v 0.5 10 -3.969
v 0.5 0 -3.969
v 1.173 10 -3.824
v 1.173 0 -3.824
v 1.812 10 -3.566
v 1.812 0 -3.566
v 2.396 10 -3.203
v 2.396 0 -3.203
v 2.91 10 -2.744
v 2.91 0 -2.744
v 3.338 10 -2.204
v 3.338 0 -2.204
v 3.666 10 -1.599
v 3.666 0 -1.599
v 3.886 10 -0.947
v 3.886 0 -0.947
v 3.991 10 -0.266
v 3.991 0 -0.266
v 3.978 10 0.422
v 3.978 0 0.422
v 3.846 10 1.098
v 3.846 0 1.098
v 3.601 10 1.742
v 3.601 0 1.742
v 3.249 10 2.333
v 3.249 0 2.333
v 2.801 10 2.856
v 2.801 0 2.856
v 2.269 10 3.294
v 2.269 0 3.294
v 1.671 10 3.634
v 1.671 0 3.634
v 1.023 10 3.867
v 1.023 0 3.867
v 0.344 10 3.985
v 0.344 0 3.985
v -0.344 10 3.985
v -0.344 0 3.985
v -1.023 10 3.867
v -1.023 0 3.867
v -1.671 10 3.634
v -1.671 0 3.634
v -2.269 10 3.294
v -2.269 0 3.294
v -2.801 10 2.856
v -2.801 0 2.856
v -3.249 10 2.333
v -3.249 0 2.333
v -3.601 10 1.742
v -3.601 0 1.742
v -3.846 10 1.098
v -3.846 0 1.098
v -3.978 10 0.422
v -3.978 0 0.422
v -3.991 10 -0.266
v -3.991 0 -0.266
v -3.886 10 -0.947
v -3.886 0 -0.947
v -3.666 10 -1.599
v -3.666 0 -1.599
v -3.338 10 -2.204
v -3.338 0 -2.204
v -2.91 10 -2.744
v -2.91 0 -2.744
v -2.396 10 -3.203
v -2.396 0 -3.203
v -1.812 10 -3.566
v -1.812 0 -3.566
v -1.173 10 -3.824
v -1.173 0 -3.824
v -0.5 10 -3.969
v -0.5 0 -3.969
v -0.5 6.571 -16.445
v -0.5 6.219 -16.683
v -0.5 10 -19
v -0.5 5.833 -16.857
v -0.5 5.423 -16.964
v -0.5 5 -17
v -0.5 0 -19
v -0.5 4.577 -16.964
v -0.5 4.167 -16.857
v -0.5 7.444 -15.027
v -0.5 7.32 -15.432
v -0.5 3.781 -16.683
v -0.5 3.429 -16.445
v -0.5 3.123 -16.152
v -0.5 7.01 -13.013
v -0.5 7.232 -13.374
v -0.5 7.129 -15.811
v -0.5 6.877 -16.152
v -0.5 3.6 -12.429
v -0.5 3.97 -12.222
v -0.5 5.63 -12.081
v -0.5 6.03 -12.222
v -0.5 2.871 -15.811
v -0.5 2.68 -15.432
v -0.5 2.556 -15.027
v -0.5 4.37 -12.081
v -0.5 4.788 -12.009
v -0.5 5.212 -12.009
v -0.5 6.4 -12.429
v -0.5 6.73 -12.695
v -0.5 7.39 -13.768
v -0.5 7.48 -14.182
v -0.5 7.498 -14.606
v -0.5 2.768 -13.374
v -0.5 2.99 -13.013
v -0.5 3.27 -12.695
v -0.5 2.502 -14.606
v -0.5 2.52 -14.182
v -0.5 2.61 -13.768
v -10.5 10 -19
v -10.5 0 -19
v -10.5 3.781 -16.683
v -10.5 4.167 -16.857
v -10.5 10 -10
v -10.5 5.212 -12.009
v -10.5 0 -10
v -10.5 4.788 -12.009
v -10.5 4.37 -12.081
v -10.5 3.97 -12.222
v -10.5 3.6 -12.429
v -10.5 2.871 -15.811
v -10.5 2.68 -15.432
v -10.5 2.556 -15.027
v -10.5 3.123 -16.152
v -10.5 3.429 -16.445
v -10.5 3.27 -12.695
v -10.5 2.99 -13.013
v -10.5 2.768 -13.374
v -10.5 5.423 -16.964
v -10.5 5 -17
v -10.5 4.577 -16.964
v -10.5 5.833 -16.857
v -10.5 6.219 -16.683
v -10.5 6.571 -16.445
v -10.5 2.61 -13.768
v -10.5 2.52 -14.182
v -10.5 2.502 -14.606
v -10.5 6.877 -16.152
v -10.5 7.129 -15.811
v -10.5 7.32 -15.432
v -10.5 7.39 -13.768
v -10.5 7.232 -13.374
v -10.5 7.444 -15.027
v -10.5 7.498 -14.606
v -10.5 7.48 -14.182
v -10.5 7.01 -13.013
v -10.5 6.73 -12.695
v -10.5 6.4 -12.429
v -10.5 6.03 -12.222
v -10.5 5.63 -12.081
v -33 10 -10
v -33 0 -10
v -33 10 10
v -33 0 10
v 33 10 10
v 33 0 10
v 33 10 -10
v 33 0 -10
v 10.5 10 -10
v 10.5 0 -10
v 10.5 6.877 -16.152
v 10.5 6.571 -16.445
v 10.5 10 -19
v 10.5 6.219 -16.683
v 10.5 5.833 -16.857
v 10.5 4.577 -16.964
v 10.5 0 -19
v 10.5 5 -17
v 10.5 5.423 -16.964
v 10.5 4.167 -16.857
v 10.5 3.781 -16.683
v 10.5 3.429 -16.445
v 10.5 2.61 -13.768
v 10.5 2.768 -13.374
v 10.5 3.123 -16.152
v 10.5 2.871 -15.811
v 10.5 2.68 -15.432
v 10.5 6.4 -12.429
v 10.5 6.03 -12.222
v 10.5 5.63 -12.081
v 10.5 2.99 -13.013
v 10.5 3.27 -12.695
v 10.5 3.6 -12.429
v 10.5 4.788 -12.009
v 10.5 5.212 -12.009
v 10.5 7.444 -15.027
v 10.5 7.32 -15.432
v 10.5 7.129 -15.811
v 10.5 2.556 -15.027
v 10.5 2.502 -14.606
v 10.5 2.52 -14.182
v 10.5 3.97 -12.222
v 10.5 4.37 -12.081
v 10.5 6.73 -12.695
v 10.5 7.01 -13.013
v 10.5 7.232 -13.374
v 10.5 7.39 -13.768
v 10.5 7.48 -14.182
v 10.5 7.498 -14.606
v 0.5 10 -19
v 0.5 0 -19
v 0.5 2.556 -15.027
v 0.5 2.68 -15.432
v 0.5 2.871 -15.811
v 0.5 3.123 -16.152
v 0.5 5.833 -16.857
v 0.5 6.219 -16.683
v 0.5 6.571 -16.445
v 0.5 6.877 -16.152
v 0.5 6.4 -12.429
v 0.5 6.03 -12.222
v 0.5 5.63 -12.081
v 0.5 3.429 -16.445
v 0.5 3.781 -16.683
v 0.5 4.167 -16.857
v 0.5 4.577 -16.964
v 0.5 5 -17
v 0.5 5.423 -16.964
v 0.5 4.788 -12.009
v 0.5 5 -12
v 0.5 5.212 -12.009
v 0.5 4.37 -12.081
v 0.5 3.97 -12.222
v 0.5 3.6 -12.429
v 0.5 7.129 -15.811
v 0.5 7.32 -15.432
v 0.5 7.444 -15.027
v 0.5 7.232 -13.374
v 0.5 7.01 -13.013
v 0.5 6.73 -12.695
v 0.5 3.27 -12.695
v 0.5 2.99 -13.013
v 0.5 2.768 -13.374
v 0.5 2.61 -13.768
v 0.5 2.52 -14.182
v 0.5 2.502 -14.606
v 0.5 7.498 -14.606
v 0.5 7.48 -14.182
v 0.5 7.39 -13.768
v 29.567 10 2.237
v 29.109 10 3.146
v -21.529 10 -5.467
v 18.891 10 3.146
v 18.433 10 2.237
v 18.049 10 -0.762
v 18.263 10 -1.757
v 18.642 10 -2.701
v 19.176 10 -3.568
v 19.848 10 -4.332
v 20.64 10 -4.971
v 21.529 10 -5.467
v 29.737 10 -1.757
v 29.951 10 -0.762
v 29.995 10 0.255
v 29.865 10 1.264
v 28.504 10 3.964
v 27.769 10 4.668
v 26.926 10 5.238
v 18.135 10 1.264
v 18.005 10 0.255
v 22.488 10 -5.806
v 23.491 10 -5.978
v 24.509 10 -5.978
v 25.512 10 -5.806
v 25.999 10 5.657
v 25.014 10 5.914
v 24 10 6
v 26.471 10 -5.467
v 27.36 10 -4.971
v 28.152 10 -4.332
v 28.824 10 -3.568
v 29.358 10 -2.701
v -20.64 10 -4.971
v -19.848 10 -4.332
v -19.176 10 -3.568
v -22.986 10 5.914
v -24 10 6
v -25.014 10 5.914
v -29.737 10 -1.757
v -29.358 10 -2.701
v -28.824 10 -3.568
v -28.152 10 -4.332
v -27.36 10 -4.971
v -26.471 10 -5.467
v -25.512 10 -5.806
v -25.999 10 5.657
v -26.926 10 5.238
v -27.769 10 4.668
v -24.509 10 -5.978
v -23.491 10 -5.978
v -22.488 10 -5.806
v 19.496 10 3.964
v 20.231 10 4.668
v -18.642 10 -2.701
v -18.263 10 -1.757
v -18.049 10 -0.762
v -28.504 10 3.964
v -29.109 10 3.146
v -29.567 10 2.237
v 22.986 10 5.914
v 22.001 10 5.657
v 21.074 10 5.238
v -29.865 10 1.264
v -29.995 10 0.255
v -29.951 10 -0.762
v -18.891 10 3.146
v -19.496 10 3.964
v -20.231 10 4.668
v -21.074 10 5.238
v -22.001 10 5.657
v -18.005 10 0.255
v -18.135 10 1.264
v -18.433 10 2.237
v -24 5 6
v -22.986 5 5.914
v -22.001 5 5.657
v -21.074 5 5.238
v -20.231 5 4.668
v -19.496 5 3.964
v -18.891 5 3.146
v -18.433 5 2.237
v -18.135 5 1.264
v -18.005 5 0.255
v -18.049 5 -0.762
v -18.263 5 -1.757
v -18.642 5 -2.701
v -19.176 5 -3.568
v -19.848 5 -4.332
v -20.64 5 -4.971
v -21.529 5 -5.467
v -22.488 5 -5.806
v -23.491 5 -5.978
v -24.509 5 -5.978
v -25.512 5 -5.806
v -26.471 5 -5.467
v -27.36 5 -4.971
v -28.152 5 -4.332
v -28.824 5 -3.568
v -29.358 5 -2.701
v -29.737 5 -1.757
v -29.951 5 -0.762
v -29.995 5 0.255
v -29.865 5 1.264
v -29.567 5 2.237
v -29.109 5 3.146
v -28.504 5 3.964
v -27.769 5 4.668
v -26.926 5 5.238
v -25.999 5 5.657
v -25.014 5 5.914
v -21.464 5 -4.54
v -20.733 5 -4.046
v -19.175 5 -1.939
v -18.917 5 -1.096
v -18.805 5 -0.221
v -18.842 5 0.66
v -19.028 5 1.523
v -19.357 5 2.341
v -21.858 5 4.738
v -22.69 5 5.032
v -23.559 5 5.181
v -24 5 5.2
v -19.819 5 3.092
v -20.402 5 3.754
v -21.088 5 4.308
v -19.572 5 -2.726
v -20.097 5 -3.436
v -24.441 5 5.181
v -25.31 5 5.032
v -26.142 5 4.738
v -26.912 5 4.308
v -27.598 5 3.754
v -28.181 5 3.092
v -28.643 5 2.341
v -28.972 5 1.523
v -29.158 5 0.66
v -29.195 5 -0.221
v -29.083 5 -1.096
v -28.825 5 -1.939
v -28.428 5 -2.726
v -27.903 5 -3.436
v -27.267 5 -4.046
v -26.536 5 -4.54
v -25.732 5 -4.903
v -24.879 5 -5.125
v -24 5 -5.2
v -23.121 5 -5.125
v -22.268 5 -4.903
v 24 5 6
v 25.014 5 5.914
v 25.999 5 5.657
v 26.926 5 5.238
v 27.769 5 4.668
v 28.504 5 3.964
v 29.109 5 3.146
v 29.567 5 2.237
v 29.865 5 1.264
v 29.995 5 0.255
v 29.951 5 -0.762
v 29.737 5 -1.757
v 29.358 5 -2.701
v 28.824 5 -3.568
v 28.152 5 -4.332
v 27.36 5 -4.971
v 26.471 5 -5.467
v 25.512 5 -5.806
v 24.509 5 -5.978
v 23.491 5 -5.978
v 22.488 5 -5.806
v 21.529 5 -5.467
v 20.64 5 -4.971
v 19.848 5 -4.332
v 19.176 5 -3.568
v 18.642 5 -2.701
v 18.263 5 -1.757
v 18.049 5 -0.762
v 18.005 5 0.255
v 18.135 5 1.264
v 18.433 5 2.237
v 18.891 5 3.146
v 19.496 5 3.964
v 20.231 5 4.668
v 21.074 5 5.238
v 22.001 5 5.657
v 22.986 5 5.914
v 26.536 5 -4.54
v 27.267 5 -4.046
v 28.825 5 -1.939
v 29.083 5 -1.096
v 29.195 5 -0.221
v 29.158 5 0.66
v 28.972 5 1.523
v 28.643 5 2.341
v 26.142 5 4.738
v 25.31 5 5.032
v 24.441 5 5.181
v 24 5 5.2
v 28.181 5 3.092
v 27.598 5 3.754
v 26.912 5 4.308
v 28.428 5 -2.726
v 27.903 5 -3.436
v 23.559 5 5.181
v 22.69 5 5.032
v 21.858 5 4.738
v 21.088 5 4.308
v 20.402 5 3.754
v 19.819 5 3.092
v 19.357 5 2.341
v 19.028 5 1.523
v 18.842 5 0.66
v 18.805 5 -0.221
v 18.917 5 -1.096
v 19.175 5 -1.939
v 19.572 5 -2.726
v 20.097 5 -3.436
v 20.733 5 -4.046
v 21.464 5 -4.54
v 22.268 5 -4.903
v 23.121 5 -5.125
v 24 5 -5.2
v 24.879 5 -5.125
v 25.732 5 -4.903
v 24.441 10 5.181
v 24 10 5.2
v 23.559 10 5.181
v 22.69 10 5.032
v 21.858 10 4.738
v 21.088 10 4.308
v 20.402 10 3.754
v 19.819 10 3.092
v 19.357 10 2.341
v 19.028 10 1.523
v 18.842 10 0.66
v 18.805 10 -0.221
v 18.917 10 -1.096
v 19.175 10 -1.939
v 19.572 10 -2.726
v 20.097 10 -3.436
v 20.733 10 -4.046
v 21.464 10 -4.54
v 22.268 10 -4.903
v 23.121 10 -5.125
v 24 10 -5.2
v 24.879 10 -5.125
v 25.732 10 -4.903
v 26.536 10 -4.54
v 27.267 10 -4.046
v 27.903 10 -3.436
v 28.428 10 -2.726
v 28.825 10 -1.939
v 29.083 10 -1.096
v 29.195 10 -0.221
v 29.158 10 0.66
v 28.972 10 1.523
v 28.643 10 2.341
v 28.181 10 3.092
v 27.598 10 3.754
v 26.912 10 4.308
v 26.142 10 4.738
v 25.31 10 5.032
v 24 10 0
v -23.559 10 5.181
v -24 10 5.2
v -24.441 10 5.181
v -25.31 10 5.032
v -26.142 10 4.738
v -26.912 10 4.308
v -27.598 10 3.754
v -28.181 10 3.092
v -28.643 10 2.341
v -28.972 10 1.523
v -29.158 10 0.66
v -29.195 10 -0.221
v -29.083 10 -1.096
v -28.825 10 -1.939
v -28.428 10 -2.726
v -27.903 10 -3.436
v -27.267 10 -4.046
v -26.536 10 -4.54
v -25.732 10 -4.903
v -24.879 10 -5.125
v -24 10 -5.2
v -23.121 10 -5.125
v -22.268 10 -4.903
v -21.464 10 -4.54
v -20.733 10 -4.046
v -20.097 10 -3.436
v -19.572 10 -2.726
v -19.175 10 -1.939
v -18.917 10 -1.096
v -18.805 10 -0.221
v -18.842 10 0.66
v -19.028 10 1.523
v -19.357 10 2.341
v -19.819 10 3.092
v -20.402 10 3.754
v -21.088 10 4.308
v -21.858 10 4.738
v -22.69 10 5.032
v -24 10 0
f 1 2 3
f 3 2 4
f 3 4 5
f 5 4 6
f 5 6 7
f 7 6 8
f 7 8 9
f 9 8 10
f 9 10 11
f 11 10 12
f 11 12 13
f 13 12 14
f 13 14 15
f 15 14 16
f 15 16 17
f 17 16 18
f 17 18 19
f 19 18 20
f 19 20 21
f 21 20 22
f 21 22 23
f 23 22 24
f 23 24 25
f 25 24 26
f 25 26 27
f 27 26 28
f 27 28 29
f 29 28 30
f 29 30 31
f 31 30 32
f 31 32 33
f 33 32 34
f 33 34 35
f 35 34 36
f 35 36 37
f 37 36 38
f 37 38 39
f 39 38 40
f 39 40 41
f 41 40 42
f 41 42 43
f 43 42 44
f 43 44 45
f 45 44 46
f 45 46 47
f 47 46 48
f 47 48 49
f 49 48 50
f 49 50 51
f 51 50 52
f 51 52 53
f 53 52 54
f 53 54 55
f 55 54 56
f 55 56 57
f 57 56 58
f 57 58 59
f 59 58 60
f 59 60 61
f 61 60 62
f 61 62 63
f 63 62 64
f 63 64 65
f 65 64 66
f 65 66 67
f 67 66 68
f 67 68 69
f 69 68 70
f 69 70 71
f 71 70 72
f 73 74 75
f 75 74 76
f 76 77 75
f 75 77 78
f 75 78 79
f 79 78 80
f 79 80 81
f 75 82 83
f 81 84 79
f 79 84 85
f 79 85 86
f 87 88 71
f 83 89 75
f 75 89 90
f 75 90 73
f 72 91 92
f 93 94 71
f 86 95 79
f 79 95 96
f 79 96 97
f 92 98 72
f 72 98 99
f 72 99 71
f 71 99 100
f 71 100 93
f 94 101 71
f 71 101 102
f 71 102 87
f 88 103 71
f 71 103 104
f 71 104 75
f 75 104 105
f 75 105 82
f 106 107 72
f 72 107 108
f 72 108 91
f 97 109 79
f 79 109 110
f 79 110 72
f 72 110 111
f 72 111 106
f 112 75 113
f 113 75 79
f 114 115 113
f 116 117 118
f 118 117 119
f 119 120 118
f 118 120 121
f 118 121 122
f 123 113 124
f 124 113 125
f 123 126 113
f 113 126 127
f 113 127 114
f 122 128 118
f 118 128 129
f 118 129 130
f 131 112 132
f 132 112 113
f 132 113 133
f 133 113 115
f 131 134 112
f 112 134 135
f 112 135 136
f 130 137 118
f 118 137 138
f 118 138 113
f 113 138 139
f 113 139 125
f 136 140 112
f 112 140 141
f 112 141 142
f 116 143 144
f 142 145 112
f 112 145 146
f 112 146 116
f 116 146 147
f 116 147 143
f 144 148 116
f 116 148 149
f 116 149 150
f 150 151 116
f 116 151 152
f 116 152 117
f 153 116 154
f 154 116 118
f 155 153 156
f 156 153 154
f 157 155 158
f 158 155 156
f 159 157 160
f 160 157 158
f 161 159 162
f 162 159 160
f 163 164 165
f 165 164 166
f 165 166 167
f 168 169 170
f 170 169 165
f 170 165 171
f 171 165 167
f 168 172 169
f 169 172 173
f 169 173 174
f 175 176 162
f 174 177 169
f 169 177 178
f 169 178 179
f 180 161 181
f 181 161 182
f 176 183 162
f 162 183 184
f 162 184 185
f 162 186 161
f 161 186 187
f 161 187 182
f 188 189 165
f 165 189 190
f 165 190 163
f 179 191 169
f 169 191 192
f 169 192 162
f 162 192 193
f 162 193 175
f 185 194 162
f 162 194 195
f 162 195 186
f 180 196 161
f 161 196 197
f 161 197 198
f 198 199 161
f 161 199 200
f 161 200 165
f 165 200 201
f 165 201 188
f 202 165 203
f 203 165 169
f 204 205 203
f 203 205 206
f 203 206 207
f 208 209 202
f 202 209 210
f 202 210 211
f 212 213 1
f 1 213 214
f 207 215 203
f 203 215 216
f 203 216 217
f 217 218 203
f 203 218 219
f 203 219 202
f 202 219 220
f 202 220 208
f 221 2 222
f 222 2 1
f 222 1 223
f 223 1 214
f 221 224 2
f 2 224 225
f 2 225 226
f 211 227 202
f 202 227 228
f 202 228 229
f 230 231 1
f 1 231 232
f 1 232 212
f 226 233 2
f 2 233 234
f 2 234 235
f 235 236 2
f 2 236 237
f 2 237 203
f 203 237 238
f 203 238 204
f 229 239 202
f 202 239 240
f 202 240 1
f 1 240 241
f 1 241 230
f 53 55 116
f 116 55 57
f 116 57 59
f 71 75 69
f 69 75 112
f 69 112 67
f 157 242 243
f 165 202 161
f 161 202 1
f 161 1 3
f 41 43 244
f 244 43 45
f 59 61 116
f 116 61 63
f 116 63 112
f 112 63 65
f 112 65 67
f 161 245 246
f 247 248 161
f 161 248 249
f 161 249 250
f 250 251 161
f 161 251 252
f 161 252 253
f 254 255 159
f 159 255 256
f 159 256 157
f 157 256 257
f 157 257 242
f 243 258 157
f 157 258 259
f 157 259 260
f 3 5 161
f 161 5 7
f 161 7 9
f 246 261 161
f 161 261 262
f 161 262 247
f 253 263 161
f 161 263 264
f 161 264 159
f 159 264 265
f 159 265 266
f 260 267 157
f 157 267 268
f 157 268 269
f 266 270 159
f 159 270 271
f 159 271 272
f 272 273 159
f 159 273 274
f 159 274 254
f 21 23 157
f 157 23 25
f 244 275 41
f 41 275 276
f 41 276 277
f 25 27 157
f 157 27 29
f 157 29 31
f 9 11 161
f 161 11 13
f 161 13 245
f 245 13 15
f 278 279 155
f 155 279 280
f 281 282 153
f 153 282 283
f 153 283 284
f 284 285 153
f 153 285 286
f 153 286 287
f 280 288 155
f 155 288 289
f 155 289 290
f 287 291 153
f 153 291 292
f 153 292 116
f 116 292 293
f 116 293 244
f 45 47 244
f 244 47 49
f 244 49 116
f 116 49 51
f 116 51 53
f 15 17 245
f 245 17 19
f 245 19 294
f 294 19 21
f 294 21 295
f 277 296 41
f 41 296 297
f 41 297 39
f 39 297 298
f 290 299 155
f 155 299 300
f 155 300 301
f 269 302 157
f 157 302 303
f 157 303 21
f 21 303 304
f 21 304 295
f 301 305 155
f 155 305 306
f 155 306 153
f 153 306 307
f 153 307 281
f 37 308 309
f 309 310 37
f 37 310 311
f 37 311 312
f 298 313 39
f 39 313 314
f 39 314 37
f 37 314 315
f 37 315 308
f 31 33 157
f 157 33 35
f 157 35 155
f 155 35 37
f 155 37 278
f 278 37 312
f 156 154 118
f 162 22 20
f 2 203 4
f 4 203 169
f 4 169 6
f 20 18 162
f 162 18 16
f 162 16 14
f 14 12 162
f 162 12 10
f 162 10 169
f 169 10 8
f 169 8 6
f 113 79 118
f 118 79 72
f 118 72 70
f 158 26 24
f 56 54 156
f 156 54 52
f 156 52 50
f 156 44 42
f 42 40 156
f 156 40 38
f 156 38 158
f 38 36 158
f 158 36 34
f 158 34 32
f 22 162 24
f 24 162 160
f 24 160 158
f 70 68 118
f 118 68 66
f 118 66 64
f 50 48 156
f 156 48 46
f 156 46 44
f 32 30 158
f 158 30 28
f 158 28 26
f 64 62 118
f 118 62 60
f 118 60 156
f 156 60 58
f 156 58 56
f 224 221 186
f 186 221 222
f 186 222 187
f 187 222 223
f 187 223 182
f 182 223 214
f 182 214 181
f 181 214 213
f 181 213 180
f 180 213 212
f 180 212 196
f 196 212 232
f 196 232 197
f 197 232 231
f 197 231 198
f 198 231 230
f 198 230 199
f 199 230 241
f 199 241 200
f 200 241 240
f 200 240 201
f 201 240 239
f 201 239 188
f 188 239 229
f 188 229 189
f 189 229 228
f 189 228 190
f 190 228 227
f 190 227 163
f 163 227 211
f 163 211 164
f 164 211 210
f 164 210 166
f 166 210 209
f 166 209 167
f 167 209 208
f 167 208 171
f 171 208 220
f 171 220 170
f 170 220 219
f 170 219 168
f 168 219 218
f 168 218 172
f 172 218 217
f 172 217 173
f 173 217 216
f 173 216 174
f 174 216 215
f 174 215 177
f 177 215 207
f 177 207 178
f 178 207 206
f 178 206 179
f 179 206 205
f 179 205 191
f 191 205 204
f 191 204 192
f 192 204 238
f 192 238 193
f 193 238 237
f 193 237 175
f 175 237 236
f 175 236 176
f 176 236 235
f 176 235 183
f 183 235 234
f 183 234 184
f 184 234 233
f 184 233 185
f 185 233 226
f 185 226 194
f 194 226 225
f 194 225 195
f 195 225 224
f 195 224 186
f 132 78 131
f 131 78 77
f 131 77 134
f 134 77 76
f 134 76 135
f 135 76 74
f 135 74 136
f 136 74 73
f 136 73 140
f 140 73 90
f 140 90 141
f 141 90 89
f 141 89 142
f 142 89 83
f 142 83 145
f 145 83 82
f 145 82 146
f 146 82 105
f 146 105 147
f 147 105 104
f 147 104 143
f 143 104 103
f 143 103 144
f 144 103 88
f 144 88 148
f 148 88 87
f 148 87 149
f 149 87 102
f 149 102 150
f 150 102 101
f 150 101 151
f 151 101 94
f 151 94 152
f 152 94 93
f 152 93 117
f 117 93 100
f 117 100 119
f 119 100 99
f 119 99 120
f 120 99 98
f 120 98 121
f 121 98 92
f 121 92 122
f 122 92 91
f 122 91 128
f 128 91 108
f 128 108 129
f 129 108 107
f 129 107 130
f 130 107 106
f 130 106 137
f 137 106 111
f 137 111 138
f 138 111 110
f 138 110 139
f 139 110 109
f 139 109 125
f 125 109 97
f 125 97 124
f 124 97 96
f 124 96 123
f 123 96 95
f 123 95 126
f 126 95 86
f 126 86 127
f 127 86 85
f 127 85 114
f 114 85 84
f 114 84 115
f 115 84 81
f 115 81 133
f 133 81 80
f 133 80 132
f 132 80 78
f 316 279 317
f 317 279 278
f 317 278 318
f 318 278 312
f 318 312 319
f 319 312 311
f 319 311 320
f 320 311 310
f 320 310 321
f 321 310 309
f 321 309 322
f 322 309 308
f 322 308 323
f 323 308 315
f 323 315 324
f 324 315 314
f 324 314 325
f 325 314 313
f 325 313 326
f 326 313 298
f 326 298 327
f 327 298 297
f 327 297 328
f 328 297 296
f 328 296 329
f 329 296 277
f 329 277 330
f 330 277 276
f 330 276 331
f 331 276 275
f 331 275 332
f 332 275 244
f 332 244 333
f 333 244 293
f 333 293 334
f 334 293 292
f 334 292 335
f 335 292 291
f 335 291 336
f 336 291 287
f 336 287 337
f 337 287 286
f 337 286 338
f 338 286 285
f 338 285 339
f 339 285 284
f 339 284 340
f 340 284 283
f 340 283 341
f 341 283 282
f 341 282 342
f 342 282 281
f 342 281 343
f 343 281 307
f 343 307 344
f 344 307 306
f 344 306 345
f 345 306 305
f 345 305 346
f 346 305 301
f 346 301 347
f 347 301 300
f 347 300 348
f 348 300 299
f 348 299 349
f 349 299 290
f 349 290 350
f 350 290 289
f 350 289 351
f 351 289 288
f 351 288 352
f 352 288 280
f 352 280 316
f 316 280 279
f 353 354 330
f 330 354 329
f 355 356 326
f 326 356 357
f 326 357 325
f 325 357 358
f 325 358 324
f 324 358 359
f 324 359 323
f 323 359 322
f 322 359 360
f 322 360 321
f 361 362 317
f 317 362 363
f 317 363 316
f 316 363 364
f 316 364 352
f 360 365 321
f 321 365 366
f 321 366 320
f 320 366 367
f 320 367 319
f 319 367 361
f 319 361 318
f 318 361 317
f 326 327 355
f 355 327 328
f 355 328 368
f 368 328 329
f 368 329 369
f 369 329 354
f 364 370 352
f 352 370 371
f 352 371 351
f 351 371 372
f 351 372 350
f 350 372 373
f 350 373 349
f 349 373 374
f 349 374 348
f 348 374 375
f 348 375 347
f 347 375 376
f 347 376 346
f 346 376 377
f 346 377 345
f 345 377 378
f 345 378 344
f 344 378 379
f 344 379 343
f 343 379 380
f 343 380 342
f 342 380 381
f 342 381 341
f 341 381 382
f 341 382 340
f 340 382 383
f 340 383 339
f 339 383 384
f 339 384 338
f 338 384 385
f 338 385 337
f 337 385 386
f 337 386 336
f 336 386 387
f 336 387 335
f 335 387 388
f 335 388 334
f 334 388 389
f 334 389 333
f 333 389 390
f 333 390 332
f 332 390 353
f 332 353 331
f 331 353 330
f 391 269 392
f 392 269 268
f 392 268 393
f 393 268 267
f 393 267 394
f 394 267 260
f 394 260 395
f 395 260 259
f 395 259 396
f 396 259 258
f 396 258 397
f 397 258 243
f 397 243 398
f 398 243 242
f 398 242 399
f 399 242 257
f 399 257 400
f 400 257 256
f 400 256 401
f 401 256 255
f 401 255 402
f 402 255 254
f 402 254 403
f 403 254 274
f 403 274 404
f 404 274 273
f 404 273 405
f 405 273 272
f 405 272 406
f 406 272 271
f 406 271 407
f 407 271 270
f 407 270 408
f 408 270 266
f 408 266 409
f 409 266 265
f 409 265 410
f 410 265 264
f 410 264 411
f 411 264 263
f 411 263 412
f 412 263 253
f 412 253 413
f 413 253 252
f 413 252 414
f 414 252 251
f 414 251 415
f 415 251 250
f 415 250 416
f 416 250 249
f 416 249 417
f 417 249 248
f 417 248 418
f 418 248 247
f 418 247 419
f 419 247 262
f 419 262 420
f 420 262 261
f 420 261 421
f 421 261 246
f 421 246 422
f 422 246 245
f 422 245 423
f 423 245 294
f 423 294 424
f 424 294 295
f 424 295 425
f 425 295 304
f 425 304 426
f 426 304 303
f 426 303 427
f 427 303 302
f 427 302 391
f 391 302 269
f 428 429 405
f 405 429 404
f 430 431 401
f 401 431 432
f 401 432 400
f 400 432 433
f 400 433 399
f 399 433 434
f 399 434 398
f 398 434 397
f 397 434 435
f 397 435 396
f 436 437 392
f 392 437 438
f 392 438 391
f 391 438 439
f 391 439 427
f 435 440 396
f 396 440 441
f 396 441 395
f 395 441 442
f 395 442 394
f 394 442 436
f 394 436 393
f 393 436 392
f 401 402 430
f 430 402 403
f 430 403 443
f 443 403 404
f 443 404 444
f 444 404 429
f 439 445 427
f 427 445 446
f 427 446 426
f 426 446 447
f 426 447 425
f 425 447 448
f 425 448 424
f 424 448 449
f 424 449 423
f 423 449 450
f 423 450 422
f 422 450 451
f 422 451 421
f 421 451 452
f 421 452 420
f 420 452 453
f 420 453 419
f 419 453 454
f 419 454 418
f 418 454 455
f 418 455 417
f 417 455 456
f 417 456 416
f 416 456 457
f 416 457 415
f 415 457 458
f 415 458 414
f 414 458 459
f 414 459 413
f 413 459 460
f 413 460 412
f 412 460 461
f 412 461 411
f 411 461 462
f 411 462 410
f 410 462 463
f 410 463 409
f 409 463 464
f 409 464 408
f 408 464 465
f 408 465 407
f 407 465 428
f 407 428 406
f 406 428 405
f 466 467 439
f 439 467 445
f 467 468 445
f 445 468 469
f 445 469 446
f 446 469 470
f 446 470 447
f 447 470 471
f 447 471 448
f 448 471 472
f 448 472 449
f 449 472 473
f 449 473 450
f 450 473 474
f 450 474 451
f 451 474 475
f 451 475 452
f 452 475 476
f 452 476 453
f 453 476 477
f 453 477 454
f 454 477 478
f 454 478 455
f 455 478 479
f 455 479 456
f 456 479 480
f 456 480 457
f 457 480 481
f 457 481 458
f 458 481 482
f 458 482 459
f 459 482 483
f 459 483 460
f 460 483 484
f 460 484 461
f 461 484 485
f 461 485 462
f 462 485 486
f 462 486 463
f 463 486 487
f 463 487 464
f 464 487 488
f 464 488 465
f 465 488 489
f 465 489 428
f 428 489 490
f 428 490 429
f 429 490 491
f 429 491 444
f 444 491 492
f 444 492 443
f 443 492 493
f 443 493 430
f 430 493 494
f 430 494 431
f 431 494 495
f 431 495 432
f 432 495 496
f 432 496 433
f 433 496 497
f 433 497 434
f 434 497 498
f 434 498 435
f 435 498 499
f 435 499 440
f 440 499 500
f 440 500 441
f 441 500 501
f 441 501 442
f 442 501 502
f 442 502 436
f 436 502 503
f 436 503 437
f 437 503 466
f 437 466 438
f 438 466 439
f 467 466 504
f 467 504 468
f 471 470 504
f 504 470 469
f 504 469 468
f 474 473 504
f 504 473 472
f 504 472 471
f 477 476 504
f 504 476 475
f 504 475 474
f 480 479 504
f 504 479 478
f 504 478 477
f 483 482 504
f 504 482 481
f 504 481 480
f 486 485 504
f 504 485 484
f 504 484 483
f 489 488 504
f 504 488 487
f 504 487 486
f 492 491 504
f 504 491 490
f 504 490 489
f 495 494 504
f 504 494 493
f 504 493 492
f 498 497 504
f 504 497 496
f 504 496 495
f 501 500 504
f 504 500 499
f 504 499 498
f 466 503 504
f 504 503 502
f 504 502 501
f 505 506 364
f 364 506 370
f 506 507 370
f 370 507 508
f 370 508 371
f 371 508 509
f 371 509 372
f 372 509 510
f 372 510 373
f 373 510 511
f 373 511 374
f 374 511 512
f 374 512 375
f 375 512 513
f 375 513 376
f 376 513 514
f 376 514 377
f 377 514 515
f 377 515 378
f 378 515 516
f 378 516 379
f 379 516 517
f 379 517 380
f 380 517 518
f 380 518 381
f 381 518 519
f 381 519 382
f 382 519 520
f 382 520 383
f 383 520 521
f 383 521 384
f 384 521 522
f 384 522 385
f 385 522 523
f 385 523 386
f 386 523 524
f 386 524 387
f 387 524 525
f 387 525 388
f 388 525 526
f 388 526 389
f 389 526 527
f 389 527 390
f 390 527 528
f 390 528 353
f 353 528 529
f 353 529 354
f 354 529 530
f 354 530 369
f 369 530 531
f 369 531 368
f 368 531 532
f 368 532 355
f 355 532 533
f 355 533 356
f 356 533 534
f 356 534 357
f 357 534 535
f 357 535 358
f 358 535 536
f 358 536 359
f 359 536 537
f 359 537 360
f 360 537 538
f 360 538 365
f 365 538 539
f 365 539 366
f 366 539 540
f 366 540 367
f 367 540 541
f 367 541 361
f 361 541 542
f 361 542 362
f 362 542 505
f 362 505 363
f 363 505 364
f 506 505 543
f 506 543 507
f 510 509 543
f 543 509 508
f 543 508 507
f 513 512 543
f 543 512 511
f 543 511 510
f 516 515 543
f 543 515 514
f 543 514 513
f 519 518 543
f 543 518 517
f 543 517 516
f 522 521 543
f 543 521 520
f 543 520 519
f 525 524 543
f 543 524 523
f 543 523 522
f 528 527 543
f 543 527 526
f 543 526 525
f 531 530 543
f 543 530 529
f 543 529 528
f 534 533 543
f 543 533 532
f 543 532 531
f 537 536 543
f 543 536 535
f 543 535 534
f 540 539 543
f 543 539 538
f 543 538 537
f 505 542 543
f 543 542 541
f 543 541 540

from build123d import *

# Parameters (mm, degrees)
BOSS_EXTRUDE1_DEPTH = 10
SKETCH2_R           = 2.5
CUT_EXTRUDE1_DEPTH  = 21
SKETCH3_R           = 6
CUT_EXTRUDE2_DEPTH  = 5
SKETCH4_R           = 5.2
BOSS_EXTRUDE2_DEPTH = 5


with BuildPart() as part:
    # Sketch1 → Boss-Extrude1 (new body)
    with BuildSketch(Plane(origin=(0, 0, 0), x_dir=(1, 0, 0), z_dir=(0, 1, 0))):
        with BuildLine():
            Line((10.5, 19), (5.5, 19))
            Line((5.5, 19), (0.5, 19))
            Line((0.5, 19), (0.5, 14))
            Line((0.5, 14), (0.5, 4))
            Line((0.5, 4), (0.5, 3.968626967))
            ThreePointArc((0.5, 3.968626967), (3, 2.645751311), (4, 0))
            ThreePointArc((4, 0), (-2.645751311, -3), (-0.5, 3.968626967))
            Line((-0.5, 3.968626967), (-0.5, 4))
            Line((-0.5, 4), (-0.5, 14))
            Line((-0.5, 14), (-0.5, 19))
            Line((-0.5, 19), (-5.5, 19))
            Line((-5.5, 19), (-10.5, 19))
            Line((-10.5, 19), (-10.5, 10))
            Line((-10.5, 10), (-33, 10))
            Line((-33, 10), (-33, -10))
            Line((-33, -10), (-24, -10))
            Line((-24, -10), (24, -10))
            Line((24, -10), (33, -10))
            Line((33, -10), (33, 10))
            Line((33, 10), (10.5, 10))
            Line((10.5, 10), (10.5, 19))
        make_face()
    extrude(amount=BOSS_EXTRUDE1_DEPTH)

    # Sketch2 → Cut-Extrude1 (cut)
    with BuildSketch(Plane(origin=(10.5, 0, 0), x_dir=(0, 0, -1), z_dir=(1, 0, 0))):
        with Locations((14.5, 5)):
            Circle(SKETCH2_R)
    extrude(amount=-CUT_EXTRUDE1_DEPTH, mode=Mode.SUBTRACT)

    # Sketch3 → Cut-Extrude2 (cut)
    with BuildSketch(Plane(origin=(0, 10, 0), x_dir=(1, 0, 0), z_dir=(0, 1, 0))):
        with Locations(Location((24, 0, 0), (0, 0, 270))):
            Circle(SKETCH3_R)
        with Locations(Location((-24, 0, 0), (0, 0, 270))):
            Circle(SKETCH3_R)
    extrude(amount=-CUT_EXTRUDE2_DEPTH, mode=Mode.SUBTRACT)

    # Sketch4 → Boss-Extrude2 (add)
    with BuildSketch(Plane(origin=(0, 5, 0), x_dir=(1, 0, 0), z_dir=(0, 1, 0))):
        with Locations(Location((24, 0, 0), (0, 0, 270))):
            Circle(SKETCH4_R)
        with Locations(Location((-24, 0, 0), (0, 0, 270))):
            Circle(SKETCH4_R)
    extrude(amount=BOSS_EXTRUDE2_DEPTH)


solid = part.part
